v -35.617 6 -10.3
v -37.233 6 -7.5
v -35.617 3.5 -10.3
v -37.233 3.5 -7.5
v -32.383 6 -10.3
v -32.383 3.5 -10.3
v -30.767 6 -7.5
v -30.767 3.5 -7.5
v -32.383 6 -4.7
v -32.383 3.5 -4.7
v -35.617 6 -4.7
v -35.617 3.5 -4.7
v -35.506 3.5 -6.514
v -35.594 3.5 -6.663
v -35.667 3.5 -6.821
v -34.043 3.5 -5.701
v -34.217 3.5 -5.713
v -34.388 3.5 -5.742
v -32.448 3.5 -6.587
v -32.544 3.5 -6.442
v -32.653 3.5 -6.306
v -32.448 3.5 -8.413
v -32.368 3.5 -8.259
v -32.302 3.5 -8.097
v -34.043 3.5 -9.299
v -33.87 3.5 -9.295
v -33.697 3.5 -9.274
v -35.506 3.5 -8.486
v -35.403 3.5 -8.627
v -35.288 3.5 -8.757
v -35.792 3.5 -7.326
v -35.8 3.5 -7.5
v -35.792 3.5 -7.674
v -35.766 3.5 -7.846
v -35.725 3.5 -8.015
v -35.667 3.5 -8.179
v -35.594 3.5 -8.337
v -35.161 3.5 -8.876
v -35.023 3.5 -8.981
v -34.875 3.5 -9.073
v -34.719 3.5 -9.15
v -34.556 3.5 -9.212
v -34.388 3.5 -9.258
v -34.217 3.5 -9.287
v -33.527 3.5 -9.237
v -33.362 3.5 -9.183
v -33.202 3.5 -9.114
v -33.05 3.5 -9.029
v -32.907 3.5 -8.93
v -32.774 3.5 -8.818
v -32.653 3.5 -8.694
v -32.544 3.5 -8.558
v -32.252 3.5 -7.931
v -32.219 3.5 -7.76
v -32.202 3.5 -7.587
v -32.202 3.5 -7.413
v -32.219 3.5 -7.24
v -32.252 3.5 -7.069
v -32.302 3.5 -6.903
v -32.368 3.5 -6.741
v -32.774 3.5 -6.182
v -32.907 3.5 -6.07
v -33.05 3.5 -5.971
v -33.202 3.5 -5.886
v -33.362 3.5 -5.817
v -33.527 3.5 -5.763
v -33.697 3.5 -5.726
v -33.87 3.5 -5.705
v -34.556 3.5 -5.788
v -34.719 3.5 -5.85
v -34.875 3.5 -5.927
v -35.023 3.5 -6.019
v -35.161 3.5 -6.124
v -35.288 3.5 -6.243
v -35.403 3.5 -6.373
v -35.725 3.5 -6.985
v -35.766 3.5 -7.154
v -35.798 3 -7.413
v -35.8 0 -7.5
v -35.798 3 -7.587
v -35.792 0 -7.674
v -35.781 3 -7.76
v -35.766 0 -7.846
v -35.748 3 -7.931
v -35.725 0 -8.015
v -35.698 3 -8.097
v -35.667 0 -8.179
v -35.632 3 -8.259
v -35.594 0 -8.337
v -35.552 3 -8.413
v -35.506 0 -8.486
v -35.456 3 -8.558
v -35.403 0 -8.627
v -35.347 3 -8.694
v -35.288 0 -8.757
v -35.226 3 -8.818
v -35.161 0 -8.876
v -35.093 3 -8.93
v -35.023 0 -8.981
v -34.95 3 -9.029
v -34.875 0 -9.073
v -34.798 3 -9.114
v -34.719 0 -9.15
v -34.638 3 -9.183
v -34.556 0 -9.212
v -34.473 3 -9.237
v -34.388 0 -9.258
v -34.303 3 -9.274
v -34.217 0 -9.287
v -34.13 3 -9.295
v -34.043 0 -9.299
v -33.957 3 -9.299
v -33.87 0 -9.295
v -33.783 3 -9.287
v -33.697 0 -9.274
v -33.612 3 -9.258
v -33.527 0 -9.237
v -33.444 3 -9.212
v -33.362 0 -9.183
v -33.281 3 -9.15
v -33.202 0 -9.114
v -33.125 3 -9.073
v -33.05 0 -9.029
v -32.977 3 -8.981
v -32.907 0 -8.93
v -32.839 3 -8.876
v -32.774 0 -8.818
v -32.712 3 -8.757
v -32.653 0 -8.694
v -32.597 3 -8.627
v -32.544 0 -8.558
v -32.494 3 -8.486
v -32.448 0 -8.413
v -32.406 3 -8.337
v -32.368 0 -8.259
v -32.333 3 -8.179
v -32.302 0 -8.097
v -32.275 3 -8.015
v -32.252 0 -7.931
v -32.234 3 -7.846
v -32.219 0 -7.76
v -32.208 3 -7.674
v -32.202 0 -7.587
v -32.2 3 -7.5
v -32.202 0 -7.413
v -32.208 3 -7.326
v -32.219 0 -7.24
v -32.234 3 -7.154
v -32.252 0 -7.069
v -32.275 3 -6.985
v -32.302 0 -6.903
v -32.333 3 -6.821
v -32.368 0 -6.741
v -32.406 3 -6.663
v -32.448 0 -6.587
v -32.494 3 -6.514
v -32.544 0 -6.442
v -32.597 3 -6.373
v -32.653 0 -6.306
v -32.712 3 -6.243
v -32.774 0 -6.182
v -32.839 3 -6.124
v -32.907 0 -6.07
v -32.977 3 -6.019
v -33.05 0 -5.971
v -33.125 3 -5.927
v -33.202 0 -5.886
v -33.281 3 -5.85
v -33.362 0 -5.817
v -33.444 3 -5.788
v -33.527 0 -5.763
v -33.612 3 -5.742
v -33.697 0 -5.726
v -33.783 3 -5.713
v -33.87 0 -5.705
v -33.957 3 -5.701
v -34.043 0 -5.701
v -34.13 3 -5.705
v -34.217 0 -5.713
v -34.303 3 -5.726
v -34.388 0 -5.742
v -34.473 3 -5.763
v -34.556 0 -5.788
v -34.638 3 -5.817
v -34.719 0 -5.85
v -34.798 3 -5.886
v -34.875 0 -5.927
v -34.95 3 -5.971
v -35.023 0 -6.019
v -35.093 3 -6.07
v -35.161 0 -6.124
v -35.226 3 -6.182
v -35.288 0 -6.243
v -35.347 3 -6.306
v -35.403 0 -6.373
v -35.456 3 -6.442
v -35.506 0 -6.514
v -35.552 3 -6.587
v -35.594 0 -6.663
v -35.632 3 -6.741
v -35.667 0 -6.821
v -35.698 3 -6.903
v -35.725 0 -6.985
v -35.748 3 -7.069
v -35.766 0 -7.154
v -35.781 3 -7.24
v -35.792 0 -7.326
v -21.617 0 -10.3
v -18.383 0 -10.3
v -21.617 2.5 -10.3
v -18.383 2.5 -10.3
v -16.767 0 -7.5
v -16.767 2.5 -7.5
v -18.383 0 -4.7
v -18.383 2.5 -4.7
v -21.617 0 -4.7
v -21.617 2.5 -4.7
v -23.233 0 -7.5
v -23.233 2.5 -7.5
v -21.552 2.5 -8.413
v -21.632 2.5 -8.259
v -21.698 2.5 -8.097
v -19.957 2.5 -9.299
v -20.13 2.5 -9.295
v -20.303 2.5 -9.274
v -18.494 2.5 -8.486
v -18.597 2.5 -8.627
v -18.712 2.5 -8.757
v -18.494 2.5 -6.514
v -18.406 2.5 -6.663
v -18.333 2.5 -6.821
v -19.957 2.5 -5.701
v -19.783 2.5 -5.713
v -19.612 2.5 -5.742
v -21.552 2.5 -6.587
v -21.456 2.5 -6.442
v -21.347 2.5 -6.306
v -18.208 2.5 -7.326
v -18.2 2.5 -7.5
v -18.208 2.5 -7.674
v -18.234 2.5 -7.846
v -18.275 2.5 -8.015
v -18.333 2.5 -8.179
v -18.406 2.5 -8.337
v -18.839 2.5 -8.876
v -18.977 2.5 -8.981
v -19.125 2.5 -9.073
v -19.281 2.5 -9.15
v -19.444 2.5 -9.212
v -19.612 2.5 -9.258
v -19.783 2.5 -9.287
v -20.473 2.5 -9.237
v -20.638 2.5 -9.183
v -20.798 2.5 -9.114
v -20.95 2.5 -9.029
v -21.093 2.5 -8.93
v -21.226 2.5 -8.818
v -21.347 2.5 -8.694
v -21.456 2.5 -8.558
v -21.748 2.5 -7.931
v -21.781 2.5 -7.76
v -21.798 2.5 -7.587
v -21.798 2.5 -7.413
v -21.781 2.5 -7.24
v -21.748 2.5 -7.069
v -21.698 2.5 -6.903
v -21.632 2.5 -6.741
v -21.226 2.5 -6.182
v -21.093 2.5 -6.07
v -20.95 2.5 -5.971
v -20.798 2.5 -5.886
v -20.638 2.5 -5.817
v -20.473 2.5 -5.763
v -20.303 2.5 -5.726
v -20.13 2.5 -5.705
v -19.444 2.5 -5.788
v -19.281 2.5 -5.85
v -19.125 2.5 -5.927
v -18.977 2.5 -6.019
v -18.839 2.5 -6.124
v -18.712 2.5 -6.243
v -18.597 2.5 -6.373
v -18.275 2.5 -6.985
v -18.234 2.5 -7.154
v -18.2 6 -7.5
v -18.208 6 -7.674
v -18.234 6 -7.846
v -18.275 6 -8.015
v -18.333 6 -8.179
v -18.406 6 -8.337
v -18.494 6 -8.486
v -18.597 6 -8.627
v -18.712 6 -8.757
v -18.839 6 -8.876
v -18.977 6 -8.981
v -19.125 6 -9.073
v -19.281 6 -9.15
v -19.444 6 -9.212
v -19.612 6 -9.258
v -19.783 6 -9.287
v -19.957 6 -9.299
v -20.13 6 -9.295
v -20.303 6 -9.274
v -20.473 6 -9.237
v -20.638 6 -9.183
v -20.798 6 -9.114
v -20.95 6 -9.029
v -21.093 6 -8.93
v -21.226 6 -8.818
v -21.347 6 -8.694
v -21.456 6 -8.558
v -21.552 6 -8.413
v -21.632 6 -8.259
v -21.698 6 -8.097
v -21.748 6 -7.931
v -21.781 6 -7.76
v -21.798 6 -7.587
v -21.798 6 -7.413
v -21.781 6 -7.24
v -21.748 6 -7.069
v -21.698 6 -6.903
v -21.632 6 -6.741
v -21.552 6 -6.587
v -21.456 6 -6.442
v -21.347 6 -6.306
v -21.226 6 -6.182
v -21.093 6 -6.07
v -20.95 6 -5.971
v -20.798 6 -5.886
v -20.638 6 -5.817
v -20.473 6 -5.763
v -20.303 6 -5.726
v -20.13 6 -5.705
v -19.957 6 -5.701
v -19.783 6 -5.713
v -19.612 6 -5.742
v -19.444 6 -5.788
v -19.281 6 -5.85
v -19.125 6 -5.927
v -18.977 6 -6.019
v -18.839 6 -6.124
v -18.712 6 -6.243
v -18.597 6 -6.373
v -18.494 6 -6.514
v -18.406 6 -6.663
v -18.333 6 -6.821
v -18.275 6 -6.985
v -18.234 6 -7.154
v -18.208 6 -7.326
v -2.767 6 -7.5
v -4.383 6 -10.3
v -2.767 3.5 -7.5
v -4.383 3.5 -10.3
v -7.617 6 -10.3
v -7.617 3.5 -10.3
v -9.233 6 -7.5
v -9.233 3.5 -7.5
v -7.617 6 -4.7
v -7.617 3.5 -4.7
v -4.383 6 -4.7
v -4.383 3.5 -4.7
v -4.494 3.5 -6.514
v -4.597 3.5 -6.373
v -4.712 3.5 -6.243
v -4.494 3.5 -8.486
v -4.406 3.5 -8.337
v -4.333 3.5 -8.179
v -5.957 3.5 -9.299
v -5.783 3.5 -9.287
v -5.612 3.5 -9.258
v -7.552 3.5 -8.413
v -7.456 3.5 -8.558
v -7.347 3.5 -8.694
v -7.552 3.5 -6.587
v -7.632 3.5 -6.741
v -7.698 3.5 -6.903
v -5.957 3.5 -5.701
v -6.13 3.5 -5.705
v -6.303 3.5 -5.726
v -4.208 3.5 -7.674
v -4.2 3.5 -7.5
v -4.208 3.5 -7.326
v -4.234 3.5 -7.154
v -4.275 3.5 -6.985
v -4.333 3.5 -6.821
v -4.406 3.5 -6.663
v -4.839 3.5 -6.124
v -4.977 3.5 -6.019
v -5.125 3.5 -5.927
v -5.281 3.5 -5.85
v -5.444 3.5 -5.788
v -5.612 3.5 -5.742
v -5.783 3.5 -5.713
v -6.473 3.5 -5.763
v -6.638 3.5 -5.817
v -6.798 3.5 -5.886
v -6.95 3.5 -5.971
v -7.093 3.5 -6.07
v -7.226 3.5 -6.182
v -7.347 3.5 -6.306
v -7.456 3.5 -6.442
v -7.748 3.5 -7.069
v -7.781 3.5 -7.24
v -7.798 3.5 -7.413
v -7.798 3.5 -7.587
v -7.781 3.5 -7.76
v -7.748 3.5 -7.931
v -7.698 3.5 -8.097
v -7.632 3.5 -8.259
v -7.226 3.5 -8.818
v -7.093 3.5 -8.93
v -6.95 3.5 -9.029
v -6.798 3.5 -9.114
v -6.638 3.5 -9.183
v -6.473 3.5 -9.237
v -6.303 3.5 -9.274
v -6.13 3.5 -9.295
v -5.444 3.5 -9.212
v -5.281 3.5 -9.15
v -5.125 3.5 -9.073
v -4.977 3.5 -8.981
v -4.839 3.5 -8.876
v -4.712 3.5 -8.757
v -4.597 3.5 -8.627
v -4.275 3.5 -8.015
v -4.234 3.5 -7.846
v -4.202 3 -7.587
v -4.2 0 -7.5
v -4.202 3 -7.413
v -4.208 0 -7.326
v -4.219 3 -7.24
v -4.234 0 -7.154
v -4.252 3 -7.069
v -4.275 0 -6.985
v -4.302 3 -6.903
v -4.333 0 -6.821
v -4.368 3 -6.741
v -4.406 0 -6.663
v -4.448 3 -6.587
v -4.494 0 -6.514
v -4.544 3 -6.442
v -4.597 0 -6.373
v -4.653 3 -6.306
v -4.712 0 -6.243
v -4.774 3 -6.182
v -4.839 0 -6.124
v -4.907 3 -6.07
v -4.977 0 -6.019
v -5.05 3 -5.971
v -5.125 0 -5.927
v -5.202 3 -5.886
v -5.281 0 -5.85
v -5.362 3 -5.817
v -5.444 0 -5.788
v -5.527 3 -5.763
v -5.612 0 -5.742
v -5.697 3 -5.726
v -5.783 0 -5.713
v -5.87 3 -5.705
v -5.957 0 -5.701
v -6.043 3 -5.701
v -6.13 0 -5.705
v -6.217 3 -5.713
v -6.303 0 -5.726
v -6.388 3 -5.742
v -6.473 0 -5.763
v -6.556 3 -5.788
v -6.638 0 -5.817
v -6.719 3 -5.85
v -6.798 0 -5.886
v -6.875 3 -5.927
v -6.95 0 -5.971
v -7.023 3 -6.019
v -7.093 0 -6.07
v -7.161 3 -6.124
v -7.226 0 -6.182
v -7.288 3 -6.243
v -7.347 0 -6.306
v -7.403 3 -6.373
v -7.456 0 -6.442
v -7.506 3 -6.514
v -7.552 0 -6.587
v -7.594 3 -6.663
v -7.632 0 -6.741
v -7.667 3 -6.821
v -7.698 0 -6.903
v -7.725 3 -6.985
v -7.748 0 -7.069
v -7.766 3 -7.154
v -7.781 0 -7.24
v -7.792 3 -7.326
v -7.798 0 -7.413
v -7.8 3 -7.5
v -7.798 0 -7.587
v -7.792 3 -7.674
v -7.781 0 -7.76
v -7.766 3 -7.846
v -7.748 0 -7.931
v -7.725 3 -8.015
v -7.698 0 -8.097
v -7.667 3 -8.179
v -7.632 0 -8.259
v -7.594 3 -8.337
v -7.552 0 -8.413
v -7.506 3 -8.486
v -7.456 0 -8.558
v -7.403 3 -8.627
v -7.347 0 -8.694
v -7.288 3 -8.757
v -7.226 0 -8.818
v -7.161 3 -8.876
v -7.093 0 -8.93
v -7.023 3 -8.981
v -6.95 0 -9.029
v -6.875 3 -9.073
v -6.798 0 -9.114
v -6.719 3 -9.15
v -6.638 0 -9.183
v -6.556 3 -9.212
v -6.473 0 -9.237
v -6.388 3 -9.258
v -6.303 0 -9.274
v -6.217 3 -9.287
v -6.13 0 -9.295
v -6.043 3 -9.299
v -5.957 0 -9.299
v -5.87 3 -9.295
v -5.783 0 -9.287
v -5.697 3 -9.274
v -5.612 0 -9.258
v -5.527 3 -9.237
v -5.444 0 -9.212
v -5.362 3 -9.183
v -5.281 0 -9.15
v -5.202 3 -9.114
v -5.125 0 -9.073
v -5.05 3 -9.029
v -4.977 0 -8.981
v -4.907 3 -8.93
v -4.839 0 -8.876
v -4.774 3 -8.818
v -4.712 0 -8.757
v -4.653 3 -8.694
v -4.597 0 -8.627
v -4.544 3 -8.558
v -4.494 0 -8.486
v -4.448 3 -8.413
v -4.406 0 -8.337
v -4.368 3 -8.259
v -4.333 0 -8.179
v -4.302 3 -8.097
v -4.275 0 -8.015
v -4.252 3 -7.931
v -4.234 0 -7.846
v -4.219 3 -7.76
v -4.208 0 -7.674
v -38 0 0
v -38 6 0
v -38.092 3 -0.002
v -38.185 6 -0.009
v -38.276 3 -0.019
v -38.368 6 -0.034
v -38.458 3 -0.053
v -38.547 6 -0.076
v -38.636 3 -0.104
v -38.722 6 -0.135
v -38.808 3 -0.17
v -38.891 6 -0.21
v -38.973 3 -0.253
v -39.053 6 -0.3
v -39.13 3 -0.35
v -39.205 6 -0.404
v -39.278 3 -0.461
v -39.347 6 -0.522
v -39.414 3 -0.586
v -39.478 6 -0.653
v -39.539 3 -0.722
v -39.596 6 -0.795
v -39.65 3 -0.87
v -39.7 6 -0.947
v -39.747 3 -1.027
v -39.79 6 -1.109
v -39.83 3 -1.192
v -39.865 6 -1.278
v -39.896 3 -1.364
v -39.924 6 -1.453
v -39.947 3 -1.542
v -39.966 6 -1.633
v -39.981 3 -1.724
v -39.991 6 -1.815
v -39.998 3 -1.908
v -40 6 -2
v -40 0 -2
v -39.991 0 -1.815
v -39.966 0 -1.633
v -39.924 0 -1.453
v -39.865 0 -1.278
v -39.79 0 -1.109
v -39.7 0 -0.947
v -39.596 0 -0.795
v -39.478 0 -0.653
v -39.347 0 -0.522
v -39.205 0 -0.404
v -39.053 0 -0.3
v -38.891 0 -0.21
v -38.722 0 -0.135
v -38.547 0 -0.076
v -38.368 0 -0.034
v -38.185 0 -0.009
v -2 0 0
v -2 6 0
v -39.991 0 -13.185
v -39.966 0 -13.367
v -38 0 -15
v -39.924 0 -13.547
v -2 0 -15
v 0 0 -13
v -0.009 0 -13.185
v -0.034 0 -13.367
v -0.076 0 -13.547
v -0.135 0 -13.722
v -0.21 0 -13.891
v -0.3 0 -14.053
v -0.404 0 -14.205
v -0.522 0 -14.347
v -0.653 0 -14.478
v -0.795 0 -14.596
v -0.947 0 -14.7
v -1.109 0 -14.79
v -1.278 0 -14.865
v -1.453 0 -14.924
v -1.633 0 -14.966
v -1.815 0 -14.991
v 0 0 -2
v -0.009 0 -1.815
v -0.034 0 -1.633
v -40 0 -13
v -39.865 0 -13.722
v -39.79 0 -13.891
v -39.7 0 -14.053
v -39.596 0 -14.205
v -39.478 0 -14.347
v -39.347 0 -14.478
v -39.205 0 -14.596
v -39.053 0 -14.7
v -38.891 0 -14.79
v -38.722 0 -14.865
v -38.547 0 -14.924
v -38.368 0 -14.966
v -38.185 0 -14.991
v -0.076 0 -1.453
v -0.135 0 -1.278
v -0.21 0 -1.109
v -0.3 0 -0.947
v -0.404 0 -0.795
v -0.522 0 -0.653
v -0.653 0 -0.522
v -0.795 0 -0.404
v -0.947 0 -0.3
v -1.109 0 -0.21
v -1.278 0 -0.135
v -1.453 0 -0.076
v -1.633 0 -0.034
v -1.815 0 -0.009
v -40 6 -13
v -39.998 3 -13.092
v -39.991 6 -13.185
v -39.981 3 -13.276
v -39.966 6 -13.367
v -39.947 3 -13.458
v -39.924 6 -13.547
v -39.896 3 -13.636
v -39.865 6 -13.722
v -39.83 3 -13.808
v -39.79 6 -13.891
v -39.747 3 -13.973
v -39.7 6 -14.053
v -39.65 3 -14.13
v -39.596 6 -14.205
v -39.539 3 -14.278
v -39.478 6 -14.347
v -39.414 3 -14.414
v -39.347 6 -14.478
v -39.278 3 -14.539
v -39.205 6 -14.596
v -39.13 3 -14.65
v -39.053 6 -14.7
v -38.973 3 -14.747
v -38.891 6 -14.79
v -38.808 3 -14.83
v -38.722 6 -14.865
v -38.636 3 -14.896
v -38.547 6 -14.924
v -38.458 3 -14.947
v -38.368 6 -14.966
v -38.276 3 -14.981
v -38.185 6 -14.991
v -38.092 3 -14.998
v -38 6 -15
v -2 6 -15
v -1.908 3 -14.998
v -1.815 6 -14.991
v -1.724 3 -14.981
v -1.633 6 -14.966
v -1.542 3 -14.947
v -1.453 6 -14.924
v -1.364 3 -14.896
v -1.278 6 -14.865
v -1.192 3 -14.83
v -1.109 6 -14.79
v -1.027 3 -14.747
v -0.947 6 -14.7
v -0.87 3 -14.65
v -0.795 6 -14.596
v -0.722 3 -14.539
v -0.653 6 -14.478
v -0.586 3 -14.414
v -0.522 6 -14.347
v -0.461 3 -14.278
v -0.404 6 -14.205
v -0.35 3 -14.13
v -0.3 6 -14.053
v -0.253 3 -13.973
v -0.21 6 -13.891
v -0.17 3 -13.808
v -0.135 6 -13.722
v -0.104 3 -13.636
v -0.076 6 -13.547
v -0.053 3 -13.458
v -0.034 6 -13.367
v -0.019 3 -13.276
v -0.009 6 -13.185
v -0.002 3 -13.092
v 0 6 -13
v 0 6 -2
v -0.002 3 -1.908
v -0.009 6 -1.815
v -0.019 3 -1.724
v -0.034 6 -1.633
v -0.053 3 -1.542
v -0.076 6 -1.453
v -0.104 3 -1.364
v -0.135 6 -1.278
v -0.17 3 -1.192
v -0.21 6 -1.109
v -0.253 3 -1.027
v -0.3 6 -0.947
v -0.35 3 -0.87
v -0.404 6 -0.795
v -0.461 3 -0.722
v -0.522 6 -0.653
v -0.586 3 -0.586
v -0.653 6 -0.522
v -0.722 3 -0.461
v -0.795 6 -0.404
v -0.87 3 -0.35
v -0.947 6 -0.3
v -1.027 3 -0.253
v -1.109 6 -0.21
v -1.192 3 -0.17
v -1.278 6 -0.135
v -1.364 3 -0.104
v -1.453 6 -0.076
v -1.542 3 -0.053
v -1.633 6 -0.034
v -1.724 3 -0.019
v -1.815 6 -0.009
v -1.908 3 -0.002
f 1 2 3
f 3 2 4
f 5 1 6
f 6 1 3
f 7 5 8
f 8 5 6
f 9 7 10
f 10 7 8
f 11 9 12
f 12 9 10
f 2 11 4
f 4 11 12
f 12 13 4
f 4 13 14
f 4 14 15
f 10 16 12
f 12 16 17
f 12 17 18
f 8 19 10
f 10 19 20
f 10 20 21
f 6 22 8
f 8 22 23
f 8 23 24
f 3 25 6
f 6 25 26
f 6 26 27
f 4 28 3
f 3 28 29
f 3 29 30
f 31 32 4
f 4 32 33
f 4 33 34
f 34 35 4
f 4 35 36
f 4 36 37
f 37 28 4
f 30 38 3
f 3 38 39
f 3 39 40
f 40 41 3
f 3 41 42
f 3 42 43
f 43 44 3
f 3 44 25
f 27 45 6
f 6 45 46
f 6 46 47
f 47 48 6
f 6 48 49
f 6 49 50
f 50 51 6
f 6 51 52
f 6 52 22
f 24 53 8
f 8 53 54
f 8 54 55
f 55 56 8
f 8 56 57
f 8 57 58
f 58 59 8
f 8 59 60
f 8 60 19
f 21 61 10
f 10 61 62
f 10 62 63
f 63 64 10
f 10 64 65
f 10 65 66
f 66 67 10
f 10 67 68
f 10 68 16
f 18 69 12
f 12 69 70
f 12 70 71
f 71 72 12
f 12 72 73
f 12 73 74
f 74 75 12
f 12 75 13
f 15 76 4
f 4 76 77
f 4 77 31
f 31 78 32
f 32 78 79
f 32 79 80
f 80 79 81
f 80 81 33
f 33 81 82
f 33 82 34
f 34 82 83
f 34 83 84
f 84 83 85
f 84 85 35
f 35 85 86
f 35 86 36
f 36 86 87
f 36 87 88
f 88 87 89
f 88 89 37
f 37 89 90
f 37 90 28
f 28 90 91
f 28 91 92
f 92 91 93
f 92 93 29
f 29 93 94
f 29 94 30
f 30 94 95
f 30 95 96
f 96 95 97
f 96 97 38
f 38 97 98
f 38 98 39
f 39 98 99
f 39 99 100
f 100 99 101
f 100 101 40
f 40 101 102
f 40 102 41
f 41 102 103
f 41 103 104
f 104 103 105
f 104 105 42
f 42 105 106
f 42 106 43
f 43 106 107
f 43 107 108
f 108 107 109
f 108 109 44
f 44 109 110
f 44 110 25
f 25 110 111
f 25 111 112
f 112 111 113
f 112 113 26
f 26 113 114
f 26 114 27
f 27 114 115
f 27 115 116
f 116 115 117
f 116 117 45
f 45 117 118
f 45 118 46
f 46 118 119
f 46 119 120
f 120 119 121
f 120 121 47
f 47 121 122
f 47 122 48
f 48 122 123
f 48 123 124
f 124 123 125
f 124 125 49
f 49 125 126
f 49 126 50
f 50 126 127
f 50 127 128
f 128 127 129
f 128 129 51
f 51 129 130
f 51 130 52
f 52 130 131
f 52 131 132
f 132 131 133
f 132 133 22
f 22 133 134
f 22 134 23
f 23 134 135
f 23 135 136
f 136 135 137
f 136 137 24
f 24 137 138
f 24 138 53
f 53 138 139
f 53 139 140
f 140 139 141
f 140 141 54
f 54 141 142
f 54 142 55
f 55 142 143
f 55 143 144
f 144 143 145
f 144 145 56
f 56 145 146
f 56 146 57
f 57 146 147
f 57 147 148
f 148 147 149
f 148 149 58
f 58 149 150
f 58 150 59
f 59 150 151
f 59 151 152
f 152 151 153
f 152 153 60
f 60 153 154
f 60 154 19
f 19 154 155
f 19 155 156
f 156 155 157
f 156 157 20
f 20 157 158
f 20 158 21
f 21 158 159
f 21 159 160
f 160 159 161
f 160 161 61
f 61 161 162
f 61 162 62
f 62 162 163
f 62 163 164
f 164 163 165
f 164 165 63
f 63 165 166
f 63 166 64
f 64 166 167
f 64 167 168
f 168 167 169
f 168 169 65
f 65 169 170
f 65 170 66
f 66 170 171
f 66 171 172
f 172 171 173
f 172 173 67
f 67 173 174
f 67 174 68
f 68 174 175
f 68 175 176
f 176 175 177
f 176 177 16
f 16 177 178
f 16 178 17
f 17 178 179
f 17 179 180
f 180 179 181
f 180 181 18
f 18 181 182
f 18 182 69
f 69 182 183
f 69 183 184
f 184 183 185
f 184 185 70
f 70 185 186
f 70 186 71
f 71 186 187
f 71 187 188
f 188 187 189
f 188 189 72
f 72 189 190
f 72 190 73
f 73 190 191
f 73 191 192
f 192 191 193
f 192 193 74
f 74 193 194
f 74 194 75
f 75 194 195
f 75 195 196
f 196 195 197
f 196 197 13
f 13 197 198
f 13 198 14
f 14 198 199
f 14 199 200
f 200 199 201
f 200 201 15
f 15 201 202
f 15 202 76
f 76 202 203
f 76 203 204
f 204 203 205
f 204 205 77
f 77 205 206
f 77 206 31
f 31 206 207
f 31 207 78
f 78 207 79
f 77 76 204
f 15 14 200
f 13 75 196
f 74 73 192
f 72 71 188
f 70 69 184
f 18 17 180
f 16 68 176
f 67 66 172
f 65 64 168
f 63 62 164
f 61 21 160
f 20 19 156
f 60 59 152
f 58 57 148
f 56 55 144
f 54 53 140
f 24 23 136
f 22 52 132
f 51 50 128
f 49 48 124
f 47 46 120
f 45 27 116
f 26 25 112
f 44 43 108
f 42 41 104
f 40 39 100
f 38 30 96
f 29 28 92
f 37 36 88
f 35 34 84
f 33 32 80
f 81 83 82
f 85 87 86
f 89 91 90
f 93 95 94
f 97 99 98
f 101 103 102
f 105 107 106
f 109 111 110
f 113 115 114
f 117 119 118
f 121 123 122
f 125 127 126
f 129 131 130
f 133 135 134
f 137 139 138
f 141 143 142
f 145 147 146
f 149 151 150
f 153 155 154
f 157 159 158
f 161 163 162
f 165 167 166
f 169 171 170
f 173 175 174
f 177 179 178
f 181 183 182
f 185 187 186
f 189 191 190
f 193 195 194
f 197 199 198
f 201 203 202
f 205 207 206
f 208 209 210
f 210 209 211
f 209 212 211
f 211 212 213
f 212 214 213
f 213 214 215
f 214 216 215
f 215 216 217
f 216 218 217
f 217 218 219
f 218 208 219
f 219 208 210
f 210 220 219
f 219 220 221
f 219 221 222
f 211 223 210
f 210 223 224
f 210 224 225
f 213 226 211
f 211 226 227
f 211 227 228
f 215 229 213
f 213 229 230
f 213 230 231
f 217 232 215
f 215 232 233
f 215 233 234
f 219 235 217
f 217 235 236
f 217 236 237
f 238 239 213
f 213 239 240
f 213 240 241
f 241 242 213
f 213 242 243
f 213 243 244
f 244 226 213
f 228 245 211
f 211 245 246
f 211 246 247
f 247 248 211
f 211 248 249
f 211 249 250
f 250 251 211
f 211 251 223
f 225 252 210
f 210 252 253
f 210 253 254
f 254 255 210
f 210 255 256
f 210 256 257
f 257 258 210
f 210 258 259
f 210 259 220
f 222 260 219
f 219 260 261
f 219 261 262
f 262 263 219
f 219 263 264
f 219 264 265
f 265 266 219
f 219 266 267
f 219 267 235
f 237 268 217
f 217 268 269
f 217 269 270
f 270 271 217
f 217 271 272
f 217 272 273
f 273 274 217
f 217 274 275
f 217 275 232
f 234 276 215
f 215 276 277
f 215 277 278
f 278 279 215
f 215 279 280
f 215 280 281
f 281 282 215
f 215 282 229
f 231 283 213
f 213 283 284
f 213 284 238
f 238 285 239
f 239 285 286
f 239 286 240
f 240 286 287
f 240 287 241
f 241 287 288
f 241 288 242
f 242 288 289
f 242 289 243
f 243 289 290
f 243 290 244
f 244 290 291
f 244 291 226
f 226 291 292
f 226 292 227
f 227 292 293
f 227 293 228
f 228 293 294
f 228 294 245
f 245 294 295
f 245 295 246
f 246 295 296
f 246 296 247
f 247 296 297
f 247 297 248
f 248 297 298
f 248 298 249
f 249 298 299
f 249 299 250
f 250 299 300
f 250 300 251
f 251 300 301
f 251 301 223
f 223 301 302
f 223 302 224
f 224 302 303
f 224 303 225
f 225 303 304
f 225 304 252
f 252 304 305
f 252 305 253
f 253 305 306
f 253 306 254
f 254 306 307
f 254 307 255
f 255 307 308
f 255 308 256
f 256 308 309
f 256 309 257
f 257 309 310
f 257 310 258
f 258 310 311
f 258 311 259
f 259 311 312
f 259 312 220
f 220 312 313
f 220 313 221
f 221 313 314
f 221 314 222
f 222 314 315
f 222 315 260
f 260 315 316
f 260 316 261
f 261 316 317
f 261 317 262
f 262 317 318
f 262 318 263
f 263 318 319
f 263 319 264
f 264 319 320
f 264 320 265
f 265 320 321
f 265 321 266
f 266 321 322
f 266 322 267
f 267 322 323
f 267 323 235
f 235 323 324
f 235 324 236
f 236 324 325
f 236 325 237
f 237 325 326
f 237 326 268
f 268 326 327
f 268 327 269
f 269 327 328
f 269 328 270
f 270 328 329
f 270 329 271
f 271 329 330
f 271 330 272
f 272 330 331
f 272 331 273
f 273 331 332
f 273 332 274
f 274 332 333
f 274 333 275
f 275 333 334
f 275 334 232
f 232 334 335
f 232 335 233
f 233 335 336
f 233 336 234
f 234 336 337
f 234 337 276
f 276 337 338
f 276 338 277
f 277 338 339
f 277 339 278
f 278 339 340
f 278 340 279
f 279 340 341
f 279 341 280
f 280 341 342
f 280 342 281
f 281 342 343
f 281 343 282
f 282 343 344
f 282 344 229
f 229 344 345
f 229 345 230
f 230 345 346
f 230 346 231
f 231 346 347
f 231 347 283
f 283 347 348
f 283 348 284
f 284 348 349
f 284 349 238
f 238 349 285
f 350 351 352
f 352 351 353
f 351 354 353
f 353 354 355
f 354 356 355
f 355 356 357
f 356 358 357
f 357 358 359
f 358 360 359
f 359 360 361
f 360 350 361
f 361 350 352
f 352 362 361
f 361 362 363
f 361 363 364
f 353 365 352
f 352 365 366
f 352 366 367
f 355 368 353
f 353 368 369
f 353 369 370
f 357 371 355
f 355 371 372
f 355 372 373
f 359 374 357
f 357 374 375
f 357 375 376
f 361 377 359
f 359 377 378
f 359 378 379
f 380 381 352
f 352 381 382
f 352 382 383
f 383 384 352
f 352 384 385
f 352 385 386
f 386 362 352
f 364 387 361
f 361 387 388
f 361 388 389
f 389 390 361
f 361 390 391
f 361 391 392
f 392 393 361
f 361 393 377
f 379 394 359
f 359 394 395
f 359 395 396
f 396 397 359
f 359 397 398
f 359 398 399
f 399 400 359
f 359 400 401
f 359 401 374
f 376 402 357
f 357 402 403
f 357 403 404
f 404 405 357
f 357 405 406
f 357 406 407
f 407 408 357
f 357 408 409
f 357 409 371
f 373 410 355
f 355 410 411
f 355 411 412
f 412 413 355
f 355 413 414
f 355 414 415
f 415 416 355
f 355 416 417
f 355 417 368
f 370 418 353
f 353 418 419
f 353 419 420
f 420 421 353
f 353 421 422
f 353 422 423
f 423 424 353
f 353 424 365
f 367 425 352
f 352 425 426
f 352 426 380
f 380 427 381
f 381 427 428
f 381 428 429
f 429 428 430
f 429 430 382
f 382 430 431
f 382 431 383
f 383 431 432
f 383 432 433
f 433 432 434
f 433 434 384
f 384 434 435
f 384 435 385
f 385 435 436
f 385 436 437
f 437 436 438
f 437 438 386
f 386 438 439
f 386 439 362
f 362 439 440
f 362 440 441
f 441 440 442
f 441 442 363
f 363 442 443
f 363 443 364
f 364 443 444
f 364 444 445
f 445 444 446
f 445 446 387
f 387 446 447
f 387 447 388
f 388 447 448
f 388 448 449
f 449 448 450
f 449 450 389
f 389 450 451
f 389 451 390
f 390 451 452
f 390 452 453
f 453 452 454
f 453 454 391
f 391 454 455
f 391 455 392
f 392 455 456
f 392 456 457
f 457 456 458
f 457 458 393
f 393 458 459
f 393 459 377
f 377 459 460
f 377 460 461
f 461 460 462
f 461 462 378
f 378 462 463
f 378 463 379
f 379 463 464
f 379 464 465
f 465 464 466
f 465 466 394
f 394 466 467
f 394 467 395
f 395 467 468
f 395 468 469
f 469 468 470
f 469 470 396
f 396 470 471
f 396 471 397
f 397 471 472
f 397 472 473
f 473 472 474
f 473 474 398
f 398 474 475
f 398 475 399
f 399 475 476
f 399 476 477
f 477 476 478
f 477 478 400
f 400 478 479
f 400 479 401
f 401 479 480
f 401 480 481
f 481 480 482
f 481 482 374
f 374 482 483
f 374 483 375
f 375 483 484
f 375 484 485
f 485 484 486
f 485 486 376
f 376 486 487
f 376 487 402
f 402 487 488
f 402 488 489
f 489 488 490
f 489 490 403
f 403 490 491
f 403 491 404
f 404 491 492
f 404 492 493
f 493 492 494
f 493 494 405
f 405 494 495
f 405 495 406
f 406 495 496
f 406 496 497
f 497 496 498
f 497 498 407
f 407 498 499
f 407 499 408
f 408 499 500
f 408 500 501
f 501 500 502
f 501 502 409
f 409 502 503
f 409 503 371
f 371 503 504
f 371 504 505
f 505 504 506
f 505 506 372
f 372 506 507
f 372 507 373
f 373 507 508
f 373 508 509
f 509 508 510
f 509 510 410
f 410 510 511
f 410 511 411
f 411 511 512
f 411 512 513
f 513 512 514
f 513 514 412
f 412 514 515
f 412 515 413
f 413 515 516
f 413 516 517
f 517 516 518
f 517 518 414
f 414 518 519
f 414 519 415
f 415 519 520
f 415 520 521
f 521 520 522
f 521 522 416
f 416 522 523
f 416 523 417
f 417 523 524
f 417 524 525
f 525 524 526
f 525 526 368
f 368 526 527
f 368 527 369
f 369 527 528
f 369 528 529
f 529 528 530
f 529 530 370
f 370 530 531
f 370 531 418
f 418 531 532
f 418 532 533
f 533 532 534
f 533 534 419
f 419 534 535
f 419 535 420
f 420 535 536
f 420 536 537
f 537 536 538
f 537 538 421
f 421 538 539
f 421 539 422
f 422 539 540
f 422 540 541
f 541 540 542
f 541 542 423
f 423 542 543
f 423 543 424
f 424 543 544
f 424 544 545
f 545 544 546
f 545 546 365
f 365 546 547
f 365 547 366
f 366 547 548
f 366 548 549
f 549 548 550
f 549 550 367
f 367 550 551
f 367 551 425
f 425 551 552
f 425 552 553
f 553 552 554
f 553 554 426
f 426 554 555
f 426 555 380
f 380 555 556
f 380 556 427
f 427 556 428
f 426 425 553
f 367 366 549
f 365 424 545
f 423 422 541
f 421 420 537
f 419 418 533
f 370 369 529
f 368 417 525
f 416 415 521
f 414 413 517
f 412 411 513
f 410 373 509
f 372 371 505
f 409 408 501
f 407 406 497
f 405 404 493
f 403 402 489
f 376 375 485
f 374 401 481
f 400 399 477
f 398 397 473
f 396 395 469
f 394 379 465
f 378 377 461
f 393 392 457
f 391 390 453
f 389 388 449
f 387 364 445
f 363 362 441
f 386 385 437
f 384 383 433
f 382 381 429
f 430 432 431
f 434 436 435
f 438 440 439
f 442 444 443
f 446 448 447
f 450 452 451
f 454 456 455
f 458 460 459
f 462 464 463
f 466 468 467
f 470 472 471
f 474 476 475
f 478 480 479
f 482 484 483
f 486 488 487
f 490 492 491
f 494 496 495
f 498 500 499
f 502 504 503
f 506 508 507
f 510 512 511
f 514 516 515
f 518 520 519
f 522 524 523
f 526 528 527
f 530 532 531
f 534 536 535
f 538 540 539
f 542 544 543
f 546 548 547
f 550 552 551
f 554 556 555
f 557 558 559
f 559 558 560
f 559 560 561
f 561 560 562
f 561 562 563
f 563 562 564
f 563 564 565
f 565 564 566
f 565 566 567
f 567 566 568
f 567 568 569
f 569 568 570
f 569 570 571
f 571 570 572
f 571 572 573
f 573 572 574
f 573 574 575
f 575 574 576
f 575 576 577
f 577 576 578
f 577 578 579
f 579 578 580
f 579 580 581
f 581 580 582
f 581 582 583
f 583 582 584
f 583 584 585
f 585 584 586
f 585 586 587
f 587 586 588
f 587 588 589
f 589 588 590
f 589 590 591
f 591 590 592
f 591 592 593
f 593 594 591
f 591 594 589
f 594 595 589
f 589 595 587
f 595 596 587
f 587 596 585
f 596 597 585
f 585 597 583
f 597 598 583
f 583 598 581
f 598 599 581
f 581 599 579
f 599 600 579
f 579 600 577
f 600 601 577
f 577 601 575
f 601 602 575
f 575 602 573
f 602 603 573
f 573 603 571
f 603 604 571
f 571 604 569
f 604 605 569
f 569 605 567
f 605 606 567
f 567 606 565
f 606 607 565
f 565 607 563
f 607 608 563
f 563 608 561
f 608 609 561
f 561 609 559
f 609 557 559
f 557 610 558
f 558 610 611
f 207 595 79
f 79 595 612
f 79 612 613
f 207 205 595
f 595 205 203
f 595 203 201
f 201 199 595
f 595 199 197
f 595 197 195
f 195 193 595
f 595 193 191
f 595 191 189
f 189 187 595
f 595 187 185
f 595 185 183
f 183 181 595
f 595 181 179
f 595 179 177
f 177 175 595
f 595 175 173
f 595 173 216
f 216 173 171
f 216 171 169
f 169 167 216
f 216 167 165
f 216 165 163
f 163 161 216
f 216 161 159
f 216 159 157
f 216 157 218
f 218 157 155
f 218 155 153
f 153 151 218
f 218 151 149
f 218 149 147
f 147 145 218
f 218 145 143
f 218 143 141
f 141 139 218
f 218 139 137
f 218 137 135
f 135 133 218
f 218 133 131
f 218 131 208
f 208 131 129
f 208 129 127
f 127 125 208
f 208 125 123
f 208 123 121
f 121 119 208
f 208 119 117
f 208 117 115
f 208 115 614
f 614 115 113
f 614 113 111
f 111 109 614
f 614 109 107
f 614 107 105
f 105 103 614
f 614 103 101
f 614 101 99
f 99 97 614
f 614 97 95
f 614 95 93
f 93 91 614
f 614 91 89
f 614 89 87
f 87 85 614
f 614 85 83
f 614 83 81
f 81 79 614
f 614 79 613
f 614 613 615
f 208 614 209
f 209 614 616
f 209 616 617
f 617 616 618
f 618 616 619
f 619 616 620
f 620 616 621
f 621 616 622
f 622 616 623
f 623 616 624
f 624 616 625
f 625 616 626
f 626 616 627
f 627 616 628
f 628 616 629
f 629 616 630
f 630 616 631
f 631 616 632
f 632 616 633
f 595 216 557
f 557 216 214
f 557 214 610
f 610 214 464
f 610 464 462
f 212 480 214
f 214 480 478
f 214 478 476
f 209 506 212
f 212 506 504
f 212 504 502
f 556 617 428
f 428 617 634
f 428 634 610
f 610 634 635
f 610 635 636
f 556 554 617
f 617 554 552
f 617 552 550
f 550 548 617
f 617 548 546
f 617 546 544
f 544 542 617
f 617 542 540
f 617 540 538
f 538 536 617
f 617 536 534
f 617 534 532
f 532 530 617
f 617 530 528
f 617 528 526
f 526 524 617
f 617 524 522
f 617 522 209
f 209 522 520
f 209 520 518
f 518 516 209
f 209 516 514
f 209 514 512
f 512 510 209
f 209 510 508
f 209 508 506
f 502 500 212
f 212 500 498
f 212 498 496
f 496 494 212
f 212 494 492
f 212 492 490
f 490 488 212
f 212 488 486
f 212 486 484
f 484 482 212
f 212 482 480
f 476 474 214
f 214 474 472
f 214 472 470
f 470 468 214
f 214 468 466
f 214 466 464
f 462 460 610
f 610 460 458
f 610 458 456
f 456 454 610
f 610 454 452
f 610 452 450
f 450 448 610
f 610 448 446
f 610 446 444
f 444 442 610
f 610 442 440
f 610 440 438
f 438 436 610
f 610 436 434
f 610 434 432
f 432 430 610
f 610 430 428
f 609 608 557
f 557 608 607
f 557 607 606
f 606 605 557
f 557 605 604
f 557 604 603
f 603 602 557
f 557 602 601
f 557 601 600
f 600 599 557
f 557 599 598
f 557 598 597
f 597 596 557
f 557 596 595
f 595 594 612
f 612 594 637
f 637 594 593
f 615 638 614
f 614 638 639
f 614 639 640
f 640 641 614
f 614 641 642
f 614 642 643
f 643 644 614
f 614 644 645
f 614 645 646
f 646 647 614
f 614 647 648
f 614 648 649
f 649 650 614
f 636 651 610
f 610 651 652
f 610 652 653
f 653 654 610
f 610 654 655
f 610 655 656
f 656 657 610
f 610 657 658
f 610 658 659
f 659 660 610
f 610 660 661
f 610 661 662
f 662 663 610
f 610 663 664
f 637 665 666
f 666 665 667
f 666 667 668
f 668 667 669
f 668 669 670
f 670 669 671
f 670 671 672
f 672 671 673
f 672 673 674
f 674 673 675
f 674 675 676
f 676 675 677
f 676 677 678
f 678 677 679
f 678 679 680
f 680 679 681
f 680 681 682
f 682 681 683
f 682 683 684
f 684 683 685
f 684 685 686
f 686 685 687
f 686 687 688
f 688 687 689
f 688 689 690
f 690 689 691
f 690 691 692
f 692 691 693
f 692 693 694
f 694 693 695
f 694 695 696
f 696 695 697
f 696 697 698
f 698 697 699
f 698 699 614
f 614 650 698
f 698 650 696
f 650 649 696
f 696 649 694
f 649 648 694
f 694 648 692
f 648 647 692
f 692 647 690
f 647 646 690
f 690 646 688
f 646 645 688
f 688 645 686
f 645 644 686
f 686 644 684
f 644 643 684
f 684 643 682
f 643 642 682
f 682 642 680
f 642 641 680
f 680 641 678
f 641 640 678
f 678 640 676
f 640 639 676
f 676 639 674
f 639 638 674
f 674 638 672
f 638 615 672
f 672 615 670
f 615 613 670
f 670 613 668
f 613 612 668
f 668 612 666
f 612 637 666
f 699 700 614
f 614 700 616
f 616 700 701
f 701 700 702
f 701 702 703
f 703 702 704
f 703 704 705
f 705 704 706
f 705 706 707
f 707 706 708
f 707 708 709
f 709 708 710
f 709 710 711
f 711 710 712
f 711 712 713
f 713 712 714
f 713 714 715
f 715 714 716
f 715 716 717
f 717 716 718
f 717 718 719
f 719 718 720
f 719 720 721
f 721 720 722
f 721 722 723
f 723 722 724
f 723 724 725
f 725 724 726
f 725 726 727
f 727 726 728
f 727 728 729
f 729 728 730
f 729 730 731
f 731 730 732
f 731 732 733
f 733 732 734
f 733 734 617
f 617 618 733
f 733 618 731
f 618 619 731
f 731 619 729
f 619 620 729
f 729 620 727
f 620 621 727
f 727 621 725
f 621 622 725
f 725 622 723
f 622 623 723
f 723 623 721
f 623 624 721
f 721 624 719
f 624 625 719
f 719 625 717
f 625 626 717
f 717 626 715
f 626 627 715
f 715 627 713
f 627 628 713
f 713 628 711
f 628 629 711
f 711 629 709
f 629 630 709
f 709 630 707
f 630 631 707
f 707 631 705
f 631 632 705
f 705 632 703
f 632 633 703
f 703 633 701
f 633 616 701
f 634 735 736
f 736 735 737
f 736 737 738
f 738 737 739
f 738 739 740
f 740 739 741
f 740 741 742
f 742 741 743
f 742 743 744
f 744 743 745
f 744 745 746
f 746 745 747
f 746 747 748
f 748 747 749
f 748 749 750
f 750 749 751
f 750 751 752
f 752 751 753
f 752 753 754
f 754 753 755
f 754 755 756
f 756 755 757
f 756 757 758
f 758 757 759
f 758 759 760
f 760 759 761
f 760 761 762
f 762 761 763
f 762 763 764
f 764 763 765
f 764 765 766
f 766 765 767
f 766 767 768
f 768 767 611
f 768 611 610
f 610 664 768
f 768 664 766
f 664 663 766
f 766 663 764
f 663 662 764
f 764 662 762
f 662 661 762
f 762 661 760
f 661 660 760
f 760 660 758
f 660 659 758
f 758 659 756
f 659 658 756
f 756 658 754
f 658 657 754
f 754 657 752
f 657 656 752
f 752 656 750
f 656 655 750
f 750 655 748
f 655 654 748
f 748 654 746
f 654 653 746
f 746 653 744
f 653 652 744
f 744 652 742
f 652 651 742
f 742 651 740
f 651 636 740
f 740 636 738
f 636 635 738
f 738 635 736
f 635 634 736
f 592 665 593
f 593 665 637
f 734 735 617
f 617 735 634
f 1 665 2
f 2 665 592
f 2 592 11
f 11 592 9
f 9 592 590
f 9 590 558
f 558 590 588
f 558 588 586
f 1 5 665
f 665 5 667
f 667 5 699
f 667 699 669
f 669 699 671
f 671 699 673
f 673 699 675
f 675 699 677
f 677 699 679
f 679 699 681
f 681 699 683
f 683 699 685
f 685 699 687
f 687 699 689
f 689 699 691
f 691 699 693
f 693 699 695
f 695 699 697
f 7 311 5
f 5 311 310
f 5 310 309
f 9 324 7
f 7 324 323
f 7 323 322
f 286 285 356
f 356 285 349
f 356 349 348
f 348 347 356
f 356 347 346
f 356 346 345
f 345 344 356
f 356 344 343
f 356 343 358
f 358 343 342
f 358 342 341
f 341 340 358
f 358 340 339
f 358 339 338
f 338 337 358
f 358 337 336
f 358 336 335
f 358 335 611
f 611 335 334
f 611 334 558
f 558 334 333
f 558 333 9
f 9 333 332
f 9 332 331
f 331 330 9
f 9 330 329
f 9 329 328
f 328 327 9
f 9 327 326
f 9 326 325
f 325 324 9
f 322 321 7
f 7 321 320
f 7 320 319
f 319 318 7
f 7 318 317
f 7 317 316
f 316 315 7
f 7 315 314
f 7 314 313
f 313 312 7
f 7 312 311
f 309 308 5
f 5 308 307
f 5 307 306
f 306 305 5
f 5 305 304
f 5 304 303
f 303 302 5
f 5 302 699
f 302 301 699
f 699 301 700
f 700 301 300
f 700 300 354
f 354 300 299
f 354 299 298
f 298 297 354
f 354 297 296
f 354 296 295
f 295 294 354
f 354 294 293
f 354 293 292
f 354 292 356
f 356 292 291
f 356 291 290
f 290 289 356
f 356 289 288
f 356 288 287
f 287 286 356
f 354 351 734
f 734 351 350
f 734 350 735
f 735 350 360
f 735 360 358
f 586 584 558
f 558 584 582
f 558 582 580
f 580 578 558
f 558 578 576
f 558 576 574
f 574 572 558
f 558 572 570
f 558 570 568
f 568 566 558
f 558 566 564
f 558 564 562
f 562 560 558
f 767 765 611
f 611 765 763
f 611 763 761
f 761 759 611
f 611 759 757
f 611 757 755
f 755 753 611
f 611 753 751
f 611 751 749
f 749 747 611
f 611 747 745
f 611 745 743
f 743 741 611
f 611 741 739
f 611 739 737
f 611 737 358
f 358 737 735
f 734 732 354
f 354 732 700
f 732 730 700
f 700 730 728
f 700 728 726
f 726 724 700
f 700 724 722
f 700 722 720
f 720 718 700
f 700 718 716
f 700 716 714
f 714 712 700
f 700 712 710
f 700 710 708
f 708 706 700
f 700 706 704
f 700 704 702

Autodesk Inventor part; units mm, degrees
ref_plane "YZ Plane" through (0, 0, 0) normal (1, 0, 0) x (0, 1, 0)
ref_plane "XZ Plane" through (0, 0, 0) normal (0, 1, 0) x (-1, 0, 0)
ref_plane "XY Plane" through (0, 0, 0) normal (0, 0, 1) x (1, 0, 0)
sketch "Sketch1" plane through (0, 0, 0) normal (0, 1, 0) x (-1, 0, 0)
  line L0 (0, 0) -> (40, 0)
  line L1 (40, 0) -> (40, -15)
  line L2 (40, -15) -> (0, -15)
  line L3 (0, -15) -> (0, 0)
  dimension "d0" = 40
  dimension "d1" = 15
extrude "Extrusion1" add sketch "Sketch1" along normal blind 6
fillet "Fillet1" radius 2 4 edges at (0, 3, 0) (0, 3, -15) (-40, 3, -15) (-40, 3, 0)
ref_plane "Work Plane1" through (-20, 0, -2) normal (1, 0, 0) x (0, 0, -1)
sketch "Sketch2" plane through (0, 6, 0) normal (0, 1, 0) x (1, 0, 0)
  circle A0 centre (-6, 7.5) radius 1.8
  point P0 (0, 0)
  dimension "d9" = 3.6
extrude "Extrusion3" cut sketch "Sketch2" against normal blind 6
sketch "Sketch4" plane through (0, 6, 0) normal (0, 1, 0) x (1, 0, 0)
  circle A0 centre (-6, 7.5) radius 1.8 projected
  line L0 (-7.6166, 4.7) -> (-9.2332, 7.5)
  line L1 (-9.2332, 7.5) -> (-7.6166, 10.3)
  line L2 (-7.6166, 10.3) -> (-4.3834, 10.3)
  line L3 (-4.3834, 10.3) -> (-2.7668, 7.5)
  line L4 (-2.7668, 7.5) -> (-4.3834, 4.7)
  line L5 (-4.3834, 4.7) -> (-7.6166, 4.7)
  point P0 (0, 0)
  point P1 (-6, 4.7)
extrude "Extrusion4" cut sketch "Sketch4" against normal blind 2.5
sketch "Sketch5" plane through (0, 6, 0) normal (0, 1, 0) x (1, 0, 0)
  circle A0 centre (-20, 7.5) radius 1.8
  point P0 (0, 0)
  dimension "d15" = 3.6
extrude "Extrusion5" cut sketch "Sketch5" against normal blind 6
sketch "Sketch6" plane through (0, 0, 0) normal (0, -1, 0) x (1, 0, 0)
  circle A0 centre (-20, -7.5) radius 1.8 projected
  line L0 (-21.6166, -10.3) -> (-23.2332, -7.5)
  line L1 (-23.2332, -7.5) -> (-21.6166, -4.7)
  line L2 (-21.6166, -4.7) -> (-18.3834, -4.7)
  line L3 (-18.3834, -4.7) -> (-16.7668, -7.5)
  line L4 (-16.7668, -7.5) -> (-18.3834, -10.3)
  line L5 (-18.3834, -10.3) -> (-21.6166, -10.3)
  point P0 (0, 0)
  point P1 (-20, -10.3)
extrude "Extrusion6" cut sketch "Sketch6" against normal blind 2.5
mirror "Mirror1" about plane through (-20, 0, -2) normal (1, 0, 0) of "Extrusion3"
mirror "Mirror2" about plane through (-20, 0, -2) normal (1, 0, 0) of "Extrusion4"
properties part number "shaft pusher top"
